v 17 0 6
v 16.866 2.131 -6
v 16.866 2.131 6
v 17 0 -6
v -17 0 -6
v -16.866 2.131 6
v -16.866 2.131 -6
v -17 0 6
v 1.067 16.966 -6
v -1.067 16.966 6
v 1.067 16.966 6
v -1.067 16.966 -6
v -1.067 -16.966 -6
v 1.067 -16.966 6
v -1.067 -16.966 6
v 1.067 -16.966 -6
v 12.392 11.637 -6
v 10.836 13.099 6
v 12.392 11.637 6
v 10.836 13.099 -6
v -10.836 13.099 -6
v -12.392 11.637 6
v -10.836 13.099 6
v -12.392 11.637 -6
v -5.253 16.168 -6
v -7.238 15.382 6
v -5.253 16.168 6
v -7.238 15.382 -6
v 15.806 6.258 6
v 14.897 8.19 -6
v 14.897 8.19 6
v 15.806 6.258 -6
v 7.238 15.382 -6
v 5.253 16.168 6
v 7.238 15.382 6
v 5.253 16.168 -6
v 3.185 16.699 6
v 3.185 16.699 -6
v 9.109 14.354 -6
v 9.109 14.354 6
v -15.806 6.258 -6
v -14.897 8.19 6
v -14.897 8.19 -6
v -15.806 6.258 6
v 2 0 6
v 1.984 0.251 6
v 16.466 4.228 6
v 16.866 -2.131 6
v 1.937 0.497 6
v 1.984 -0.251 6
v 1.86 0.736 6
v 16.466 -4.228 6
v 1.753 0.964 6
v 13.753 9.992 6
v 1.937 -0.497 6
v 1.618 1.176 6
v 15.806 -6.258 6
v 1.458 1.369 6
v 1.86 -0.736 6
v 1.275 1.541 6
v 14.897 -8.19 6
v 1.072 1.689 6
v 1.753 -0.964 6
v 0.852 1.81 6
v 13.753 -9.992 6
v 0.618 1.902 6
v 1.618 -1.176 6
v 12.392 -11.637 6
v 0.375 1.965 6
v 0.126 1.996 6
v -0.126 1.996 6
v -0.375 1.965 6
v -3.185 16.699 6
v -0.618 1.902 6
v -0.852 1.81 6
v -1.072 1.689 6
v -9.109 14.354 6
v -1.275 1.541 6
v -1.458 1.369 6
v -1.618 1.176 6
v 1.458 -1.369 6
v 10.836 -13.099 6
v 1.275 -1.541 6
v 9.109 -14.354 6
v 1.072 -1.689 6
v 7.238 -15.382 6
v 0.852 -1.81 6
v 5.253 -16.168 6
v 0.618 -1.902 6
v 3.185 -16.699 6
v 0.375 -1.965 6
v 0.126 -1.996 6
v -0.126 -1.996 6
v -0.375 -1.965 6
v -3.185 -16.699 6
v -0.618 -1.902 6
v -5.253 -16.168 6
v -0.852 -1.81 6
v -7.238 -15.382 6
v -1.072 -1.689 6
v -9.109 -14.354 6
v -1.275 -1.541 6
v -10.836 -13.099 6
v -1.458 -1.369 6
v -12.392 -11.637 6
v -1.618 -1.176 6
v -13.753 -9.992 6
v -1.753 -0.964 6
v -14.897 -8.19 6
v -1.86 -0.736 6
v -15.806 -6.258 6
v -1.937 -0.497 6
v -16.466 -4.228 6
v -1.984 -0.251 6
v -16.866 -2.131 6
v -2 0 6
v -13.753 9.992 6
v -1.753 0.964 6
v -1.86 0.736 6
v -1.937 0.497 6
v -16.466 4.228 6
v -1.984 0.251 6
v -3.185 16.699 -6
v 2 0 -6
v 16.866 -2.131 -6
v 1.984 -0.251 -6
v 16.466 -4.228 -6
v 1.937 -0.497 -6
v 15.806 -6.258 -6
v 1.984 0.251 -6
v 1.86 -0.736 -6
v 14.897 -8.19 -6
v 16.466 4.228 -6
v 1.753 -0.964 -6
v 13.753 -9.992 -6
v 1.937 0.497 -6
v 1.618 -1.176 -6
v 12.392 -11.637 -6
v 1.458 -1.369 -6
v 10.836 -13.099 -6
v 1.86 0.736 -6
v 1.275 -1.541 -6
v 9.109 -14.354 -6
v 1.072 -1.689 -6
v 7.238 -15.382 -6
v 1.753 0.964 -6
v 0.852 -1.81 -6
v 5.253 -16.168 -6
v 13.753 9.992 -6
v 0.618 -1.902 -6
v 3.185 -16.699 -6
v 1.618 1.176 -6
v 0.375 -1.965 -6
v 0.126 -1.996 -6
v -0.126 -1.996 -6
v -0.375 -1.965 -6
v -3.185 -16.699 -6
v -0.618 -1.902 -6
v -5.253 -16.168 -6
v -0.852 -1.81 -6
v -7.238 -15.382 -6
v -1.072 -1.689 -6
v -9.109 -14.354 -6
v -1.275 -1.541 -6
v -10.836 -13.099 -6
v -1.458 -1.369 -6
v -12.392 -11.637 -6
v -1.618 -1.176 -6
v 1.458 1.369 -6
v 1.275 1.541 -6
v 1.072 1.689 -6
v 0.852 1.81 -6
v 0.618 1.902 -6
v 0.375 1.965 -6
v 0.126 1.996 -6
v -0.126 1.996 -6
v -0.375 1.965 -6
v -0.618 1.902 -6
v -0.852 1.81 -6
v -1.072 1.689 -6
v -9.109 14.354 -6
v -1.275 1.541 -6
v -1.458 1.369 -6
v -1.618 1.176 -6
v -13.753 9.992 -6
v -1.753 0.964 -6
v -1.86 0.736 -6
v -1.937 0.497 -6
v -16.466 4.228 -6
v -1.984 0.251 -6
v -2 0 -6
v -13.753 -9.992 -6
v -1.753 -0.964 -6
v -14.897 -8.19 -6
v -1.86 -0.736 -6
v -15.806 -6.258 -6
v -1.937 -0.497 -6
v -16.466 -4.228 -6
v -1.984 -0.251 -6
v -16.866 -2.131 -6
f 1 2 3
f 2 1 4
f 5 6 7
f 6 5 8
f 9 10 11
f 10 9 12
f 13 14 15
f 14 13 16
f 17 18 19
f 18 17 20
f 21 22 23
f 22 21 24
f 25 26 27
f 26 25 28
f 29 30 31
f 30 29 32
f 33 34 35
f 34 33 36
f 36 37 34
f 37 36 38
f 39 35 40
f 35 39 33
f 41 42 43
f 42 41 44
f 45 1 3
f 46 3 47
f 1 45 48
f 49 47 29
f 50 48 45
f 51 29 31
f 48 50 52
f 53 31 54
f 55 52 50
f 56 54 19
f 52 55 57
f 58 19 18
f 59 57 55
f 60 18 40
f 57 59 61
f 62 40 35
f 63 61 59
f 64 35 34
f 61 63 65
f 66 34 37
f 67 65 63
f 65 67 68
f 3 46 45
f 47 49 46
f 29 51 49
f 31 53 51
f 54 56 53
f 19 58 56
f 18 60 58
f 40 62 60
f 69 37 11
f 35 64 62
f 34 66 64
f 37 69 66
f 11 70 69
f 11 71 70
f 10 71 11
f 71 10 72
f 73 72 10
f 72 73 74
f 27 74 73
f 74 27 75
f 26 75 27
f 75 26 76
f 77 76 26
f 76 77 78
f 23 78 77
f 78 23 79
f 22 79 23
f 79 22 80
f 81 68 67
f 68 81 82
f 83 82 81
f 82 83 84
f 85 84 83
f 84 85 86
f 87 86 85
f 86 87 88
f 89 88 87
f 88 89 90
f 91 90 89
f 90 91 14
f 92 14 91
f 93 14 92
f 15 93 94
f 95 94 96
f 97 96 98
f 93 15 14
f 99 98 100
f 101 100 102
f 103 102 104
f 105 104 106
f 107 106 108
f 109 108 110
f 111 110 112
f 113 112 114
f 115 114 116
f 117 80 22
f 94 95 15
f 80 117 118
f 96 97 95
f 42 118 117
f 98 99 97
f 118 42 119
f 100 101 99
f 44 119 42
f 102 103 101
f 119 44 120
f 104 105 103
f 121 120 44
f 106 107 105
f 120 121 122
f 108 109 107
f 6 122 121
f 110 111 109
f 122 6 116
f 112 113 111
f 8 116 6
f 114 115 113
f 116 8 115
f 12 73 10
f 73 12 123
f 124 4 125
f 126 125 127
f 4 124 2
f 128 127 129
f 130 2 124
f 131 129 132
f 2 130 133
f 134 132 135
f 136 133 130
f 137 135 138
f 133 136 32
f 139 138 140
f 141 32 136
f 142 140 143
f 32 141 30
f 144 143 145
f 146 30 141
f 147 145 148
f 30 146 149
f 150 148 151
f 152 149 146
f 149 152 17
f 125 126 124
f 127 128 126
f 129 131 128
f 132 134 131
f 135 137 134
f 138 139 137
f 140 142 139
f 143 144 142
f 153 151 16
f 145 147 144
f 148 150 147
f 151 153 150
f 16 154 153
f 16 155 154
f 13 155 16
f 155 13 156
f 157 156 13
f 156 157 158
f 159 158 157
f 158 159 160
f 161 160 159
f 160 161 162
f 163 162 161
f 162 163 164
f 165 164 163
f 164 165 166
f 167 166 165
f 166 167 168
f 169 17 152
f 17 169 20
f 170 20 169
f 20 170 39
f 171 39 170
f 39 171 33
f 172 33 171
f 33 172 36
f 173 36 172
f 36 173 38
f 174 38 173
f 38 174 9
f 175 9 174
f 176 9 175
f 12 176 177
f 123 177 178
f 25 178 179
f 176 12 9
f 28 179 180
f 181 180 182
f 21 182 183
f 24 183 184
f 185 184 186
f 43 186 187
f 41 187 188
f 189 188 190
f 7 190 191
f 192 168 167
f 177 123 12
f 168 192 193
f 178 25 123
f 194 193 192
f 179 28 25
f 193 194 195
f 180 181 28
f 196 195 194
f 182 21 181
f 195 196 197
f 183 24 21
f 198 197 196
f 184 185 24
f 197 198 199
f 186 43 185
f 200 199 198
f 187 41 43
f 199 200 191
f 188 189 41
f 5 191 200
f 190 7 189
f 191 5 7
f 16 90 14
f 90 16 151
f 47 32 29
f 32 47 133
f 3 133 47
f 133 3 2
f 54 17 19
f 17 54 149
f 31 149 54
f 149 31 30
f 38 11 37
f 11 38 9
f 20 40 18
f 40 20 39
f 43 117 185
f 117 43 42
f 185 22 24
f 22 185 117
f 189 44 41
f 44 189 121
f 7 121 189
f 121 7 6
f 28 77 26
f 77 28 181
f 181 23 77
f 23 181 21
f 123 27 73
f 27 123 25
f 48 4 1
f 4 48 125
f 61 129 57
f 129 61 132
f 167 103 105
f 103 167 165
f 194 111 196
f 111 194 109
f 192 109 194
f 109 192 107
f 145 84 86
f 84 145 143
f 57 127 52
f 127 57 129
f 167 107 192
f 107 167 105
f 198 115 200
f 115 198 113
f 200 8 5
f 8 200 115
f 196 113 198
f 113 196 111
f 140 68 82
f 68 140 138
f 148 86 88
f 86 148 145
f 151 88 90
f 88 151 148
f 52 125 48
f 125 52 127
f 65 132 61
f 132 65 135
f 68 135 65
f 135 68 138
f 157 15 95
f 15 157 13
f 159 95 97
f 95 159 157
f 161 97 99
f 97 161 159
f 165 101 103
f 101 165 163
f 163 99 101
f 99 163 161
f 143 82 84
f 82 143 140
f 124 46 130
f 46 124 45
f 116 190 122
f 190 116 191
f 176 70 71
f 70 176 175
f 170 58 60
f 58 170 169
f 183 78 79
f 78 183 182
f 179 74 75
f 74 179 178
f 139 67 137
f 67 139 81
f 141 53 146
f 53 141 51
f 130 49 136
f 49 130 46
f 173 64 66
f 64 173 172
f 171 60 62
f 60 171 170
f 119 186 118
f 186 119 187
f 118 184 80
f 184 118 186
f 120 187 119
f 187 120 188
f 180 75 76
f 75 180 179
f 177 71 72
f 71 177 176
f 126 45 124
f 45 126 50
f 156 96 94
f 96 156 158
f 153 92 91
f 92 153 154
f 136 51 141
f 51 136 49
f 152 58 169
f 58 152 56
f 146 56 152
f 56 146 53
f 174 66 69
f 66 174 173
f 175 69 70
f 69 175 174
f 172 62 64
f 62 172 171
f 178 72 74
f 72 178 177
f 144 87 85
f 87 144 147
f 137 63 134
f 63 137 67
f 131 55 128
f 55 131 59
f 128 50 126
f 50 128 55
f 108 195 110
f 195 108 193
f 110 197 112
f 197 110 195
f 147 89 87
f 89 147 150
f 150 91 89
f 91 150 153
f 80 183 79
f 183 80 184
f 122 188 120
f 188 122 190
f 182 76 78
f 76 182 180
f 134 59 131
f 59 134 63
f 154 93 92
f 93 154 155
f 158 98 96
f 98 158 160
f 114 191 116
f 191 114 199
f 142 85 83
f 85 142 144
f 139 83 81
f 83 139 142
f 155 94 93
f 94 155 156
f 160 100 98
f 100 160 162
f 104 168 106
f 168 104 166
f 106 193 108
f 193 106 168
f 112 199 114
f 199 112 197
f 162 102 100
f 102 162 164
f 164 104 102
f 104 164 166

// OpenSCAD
$fn = 50;


difference() {
	union() {
		translate(v = [0, 0, -6.0000000000]) {
			cylinder(h = 12, r = 17.0000000000);
		}
	}
	union() {
		translate(v = [0, 0, -100.0000000000]) {
			cylinder(h = 200, r = 2.0000000000);
		}
	}
}
